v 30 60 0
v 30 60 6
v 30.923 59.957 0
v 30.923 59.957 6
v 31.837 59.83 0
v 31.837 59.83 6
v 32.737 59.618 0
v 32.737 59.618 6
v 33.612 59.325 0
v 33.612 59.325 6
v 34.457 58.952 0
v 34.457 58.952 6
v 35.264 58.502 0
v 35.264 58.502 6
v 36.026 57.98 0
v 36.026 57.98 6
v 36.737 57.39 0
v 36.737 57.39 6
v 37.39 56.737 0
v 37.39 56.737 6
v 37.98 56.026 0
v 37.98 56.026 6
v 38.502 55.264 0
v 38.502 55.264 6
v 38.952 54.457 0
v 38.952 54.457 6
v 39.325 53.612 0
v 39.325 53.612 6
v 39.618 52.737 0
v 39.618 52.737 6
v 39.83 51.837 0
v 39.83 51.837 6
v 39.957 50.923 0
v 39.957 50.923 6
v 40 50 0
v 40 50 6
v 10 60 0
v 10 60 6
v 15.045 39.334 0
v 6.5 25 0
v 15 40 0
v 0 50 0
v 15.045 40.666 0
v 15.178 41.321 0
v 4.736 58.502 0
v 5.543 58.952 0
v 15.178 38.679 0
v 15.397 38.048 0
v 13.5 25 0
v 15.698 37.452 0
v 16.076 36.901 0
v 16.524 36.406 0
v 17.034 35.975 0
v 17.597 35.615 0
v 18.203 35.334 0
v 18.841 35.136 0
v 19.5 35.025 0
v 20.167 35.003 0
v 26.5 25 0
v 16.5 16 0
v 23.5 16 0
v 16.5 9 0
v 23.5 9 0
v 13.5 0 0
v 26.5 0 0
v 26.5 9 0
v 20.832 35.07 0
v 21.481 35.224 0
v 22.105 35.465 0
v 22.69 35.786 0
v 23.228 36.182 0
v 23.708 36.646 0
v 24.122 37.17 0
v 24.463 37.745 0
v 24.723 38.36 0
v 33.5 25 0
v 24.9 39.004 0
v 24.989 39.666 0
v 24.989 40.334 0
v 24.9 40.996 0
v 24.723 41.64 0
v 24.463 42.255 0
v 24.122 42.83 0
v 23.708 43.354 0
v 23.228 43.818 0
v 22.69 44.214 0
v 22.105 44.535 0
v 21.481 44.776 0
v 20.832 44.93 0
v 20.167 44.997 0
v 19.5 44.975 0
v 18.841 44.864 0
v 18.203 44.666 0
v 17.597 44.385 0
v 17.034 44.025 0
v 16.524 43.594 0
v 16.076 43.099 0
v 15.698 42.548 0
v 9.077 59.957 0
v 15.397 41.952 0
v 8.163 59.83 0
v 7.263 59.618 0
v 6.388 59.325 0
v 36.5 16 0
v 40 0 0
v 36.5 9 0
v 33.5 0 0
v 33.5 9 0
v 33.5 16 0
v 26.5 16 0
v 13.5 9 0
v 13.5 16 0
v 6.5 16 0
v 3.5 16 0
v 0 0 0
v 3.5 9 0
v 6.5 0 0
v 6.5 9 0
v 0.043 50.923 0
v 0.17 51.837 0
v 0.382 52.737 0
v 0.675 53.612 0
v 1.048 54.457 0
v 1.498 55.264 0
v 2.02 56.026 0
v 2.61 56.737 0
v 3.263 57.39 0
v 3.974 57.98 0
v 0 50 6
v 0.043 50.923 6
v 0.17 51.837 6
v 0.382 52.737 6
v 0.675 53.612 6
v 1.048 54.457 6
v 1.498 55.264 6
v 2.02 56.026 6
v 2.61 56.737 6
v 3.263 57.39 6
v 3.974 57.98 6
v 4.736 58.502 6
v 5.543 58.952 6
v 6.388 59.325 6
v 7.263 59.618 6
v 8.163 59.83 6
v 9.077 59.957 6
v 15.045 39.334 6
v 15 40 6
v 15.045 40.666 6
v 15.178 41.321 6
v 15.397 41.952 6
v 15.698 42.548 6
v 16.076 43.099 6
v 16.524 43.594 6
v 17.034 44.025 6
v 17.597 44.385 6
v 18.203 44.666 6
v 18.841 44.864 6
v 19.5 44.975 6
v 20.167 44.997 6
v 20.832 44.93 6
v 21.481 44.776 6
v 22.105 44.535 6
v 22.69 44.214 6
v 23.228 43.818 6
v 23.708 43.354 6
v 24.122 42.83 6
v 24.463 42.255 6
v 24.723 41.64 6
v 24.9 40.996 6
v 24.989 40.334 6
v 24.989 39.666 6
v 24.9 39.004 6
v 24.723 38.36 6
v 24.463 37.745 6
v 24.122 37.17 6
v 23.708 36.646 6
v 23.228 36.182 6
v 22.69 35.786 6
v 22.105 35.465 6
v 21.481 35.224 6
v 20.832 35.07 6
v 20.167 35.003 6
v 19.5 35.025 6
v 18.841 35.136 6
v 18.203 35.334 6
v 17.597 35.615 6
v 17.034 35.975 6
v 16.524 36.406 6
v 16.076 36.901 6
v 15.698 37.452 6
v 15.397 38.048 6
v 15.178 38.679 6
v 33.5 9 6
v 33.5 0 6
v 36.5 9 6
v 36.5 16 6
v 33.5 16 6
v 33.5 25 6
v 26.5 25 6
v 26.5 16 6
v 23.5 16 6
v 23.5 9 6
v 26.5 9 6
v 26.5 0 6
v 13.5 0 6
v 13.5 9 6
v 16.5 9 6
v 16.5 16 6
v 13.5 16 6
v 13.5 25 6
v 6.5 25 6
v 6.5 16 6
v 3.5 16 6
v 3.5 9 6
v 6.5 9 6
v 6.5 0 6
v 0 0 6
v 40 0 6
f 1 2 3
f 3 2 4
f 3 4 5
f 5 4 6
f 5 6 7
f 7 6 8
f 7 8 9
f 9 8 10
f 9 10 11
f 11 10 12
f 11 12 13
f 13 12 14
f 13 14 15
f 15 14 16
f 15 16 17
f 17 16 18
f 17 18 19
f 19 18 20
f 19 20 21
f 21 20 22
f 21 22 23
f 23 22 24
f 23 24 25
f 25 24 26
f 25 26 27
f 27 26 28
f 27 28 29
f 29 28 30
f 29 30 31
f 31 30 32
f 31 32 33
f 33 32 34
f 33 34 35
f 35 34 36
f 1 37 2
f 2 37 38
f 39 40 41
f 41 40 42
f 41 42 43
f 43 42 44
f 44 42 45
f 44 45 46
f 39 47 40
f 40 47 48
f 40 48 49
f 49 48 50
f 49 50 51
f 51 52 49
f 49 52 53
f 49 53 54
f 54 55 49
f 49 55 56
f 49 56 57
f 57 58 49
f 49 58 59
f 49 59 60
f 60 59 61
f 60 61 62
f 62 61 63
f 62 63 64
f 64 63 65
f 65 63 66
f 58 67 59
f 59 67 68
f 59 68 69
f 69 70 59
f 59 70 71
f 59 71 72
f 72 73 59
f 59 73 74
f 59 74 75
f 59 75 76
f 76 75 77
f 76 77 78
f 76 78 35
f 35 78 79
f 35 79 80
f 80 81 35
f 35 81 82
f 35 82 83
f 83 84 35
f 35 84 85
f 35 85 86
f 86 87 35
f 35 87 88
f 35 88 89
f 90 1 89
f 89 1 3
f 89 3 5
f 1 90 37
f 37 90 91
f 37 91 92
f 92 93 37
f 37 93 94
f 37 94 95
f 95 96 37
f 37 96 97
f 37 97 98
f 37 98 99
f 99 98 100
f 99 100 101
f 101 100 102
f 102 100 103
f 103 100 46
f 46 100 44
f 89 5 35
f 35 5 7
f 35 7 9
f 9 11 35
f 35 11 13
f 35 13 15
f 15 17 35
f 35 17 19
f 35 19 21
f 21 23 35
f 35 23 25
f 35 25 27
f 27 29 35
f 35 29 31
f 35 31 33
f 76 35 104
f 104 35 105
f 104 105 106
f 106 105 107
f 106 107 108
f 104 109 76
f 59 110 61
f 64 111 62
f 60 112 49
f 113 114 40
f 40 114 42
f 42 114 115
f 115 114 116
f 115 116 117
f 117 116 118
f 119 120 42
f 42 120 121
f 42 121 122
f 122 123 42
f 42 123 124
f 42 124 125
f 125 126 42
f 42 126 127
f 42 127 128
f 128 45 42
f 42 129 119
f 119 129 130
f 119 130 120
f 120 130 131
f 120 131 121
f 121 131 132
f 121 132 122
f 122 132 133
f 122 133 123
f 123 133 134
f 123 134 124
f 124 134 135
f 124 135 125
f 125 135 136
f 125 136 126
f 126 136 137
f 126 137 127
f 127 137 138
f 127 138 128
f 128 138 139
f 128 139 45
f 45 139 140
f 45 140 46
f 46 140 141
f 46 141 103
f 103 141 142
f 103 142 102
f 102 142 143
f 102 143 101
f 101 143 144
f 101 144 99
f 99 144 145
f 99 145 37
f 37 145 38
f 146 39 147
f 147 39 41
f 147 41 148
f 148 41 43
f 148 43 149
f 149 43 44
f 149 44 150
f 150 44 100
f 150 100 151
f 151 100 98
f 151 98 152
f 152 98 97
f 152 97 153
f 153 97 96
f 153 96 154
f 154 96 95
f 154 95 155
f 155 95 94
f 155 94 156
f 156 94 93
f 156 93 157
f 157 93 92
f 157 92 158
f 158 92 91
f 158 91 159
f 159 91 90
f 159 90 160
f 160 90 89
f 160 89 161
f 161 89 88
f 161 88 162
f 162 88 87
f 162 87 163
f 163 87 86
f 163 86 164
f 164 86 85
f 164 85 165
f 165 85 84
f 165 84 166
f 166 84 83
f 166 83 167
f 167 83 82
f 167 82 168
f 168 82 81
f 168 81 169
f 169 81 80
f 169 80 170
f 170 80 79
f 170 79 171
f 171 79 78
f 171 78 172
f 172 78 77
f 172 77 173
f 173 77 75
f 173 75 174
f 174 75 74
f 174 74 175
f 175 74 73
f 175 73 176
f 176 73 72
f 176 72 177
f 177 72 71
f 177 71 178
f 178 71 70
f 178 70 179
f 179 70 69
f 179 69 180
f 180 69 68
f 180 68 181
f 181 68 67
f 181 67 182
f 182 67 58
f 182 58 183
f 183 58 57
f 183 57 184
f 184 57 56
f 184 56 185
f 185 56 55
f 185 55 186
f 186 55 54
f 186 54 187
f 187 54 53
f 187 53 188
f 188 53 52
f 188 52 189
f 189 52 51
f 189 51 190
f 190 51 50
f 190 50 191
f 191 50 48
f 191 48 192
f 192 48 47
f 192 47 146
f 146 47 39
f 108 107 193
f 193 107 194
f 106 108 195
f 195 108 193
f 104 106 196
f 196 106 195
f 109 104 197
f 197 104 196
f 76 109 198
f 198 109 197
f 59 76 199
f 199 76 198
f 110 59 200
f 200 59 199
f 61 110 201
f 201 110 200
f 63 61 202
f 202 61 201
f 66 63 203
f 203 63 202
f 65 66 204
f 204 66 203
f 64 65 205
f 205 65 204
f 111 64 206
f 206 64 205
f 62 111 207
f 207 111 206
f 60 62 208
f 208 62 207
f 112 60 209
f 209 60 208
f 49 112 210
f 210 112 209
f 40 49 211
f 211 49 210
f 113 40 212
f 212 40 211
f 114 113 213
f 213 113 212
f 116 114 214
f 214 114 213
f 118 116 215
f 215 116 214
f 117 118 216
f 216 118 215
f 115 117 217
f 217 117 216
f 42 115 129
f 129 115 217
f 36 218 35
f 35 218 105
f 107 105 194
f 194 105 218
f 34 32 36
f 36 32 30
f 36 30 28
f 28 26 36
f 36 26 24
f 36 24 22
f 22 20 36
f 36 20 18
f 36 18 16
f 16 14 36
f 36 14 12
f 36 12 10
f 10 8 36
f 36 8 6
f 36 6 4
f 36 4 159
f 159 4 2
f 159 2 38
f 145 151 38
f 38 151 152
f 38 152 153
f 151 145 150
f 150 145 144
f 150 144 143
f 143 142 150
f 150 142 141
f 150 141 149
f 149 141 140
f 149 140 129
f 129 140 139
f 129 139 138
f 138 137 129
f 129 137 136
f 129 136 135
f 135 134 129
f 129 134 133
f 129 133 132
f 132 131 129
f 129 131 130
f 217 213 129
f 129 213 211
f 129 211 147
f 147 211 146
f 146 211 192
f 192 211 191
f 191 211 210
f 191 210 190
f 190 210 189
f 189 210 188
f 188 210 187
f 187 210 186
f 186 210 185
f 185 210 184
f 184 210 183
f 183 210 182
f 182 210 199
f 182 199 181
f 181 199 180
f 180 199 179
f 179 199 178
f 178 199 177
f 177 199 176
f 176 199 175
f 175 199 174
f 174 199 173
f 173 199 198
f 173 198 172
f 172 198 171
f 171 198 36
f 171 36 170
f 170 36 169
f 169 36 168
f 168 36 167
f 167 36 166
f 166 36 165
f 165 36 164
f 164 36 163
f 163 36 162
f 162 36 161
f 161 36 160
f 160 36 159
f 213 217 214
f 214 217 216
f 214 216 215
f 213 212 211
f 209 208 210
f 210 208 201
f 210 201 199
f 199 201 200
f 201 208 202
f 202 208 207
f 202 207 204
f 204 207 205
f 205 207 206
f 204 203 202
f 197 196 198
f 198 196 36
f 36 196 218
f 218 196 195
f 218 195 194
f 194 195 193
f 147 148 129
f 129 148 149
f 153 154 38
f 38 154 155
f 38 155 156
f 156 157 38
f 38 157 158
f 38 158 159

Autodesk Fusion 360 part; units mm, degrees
sketch "Sketch1" plane through (0, 0, 0) normal (0, 0, 1) x (1, 0, 0)
  line L0 (0, 0) -> (40, 0)
  line L1 (40, 0) -> (40, 60)
  line L2 (40, 60) -> (0, 60)
  line L3 (0, 60) -> (0, 0)
  line L4 (20, 60) -> (20, 27.089)
  circle A0 centre (20, 40) radius 5
  line L5 (6.5, 0) -> (13.5, 0)
  line L6 (13.5, 0) -> (13.5, 25)
  line L7 (13.5, 25) -> (6.5, 25)
  line L8 (6.5, 25) -> (6.5, 0)
  line L9 (26.5, 0) -> (33.5, 0)
  line L10 (33.5, 0) -> (33.5, 25)
  line L11 (33.5, 25) -> (26.5, 25)
  line L12 (26.5, 25) -> (26.5, 0)
  line L13 (10, 25) -> (30, 25)
  line L14 (20, 25) -> (20, 0)
  line L15 (0, 16) -> (40, 16)
  line L16 (3.5, 16) -> (16.5, 16)
  line L17 (16.5, 16) -> (16.5, 9)
  line L18 (16.5, 9) -> (3.5, 9)
  line L19 (3.5, 9) -> (3.5, 16)
  line L20 (3.5, 12.5) -> (6.5, 12.5)
  line L21 (10, 9) -> (10, 0)
  line L22 (23.5, 16) -> (23.5, 9)
  line L23 (23.5, 9) -> (36.5, 9)
  line L24 (36.5, 9) -> (36.5, 16)
  dimension "d1" = 40
  dimension "d2" = 60
  dimension "d3" = 10
  dimension "d4" = 40
  dimension "d5" = 7
  dimension "d6" = 7
  dimension "d7" = 25
  dimension "d8" = 25
  dimension "d9" = 20
  dimension "d10" = 90
  dimension "d11" = 90
  dimension "d12" = 13
  dimension "d13" = 90
  dimension "d14" = 7
extrude "Extrude1" add sketch "Sketch1" along normal blind 6 contours L0 L3 L8 L15 L18 L19 | L1 L2 L3 L7 L8 L10 L11 L13 L15 L16 | L0 L6 L14 L15 L17 L18 | L0 L12 L14 L15 L22 L23 | L6 L13 L14 L15 L16 | L12 L13 L14 L15 | L0 L1 L10 L15 L23 L24
fillet "Fillet1" radius 10 1 edges at (0, 60, 3)
fillet "Fillet2" radius 10 1 edges at (40, 60, 3)
